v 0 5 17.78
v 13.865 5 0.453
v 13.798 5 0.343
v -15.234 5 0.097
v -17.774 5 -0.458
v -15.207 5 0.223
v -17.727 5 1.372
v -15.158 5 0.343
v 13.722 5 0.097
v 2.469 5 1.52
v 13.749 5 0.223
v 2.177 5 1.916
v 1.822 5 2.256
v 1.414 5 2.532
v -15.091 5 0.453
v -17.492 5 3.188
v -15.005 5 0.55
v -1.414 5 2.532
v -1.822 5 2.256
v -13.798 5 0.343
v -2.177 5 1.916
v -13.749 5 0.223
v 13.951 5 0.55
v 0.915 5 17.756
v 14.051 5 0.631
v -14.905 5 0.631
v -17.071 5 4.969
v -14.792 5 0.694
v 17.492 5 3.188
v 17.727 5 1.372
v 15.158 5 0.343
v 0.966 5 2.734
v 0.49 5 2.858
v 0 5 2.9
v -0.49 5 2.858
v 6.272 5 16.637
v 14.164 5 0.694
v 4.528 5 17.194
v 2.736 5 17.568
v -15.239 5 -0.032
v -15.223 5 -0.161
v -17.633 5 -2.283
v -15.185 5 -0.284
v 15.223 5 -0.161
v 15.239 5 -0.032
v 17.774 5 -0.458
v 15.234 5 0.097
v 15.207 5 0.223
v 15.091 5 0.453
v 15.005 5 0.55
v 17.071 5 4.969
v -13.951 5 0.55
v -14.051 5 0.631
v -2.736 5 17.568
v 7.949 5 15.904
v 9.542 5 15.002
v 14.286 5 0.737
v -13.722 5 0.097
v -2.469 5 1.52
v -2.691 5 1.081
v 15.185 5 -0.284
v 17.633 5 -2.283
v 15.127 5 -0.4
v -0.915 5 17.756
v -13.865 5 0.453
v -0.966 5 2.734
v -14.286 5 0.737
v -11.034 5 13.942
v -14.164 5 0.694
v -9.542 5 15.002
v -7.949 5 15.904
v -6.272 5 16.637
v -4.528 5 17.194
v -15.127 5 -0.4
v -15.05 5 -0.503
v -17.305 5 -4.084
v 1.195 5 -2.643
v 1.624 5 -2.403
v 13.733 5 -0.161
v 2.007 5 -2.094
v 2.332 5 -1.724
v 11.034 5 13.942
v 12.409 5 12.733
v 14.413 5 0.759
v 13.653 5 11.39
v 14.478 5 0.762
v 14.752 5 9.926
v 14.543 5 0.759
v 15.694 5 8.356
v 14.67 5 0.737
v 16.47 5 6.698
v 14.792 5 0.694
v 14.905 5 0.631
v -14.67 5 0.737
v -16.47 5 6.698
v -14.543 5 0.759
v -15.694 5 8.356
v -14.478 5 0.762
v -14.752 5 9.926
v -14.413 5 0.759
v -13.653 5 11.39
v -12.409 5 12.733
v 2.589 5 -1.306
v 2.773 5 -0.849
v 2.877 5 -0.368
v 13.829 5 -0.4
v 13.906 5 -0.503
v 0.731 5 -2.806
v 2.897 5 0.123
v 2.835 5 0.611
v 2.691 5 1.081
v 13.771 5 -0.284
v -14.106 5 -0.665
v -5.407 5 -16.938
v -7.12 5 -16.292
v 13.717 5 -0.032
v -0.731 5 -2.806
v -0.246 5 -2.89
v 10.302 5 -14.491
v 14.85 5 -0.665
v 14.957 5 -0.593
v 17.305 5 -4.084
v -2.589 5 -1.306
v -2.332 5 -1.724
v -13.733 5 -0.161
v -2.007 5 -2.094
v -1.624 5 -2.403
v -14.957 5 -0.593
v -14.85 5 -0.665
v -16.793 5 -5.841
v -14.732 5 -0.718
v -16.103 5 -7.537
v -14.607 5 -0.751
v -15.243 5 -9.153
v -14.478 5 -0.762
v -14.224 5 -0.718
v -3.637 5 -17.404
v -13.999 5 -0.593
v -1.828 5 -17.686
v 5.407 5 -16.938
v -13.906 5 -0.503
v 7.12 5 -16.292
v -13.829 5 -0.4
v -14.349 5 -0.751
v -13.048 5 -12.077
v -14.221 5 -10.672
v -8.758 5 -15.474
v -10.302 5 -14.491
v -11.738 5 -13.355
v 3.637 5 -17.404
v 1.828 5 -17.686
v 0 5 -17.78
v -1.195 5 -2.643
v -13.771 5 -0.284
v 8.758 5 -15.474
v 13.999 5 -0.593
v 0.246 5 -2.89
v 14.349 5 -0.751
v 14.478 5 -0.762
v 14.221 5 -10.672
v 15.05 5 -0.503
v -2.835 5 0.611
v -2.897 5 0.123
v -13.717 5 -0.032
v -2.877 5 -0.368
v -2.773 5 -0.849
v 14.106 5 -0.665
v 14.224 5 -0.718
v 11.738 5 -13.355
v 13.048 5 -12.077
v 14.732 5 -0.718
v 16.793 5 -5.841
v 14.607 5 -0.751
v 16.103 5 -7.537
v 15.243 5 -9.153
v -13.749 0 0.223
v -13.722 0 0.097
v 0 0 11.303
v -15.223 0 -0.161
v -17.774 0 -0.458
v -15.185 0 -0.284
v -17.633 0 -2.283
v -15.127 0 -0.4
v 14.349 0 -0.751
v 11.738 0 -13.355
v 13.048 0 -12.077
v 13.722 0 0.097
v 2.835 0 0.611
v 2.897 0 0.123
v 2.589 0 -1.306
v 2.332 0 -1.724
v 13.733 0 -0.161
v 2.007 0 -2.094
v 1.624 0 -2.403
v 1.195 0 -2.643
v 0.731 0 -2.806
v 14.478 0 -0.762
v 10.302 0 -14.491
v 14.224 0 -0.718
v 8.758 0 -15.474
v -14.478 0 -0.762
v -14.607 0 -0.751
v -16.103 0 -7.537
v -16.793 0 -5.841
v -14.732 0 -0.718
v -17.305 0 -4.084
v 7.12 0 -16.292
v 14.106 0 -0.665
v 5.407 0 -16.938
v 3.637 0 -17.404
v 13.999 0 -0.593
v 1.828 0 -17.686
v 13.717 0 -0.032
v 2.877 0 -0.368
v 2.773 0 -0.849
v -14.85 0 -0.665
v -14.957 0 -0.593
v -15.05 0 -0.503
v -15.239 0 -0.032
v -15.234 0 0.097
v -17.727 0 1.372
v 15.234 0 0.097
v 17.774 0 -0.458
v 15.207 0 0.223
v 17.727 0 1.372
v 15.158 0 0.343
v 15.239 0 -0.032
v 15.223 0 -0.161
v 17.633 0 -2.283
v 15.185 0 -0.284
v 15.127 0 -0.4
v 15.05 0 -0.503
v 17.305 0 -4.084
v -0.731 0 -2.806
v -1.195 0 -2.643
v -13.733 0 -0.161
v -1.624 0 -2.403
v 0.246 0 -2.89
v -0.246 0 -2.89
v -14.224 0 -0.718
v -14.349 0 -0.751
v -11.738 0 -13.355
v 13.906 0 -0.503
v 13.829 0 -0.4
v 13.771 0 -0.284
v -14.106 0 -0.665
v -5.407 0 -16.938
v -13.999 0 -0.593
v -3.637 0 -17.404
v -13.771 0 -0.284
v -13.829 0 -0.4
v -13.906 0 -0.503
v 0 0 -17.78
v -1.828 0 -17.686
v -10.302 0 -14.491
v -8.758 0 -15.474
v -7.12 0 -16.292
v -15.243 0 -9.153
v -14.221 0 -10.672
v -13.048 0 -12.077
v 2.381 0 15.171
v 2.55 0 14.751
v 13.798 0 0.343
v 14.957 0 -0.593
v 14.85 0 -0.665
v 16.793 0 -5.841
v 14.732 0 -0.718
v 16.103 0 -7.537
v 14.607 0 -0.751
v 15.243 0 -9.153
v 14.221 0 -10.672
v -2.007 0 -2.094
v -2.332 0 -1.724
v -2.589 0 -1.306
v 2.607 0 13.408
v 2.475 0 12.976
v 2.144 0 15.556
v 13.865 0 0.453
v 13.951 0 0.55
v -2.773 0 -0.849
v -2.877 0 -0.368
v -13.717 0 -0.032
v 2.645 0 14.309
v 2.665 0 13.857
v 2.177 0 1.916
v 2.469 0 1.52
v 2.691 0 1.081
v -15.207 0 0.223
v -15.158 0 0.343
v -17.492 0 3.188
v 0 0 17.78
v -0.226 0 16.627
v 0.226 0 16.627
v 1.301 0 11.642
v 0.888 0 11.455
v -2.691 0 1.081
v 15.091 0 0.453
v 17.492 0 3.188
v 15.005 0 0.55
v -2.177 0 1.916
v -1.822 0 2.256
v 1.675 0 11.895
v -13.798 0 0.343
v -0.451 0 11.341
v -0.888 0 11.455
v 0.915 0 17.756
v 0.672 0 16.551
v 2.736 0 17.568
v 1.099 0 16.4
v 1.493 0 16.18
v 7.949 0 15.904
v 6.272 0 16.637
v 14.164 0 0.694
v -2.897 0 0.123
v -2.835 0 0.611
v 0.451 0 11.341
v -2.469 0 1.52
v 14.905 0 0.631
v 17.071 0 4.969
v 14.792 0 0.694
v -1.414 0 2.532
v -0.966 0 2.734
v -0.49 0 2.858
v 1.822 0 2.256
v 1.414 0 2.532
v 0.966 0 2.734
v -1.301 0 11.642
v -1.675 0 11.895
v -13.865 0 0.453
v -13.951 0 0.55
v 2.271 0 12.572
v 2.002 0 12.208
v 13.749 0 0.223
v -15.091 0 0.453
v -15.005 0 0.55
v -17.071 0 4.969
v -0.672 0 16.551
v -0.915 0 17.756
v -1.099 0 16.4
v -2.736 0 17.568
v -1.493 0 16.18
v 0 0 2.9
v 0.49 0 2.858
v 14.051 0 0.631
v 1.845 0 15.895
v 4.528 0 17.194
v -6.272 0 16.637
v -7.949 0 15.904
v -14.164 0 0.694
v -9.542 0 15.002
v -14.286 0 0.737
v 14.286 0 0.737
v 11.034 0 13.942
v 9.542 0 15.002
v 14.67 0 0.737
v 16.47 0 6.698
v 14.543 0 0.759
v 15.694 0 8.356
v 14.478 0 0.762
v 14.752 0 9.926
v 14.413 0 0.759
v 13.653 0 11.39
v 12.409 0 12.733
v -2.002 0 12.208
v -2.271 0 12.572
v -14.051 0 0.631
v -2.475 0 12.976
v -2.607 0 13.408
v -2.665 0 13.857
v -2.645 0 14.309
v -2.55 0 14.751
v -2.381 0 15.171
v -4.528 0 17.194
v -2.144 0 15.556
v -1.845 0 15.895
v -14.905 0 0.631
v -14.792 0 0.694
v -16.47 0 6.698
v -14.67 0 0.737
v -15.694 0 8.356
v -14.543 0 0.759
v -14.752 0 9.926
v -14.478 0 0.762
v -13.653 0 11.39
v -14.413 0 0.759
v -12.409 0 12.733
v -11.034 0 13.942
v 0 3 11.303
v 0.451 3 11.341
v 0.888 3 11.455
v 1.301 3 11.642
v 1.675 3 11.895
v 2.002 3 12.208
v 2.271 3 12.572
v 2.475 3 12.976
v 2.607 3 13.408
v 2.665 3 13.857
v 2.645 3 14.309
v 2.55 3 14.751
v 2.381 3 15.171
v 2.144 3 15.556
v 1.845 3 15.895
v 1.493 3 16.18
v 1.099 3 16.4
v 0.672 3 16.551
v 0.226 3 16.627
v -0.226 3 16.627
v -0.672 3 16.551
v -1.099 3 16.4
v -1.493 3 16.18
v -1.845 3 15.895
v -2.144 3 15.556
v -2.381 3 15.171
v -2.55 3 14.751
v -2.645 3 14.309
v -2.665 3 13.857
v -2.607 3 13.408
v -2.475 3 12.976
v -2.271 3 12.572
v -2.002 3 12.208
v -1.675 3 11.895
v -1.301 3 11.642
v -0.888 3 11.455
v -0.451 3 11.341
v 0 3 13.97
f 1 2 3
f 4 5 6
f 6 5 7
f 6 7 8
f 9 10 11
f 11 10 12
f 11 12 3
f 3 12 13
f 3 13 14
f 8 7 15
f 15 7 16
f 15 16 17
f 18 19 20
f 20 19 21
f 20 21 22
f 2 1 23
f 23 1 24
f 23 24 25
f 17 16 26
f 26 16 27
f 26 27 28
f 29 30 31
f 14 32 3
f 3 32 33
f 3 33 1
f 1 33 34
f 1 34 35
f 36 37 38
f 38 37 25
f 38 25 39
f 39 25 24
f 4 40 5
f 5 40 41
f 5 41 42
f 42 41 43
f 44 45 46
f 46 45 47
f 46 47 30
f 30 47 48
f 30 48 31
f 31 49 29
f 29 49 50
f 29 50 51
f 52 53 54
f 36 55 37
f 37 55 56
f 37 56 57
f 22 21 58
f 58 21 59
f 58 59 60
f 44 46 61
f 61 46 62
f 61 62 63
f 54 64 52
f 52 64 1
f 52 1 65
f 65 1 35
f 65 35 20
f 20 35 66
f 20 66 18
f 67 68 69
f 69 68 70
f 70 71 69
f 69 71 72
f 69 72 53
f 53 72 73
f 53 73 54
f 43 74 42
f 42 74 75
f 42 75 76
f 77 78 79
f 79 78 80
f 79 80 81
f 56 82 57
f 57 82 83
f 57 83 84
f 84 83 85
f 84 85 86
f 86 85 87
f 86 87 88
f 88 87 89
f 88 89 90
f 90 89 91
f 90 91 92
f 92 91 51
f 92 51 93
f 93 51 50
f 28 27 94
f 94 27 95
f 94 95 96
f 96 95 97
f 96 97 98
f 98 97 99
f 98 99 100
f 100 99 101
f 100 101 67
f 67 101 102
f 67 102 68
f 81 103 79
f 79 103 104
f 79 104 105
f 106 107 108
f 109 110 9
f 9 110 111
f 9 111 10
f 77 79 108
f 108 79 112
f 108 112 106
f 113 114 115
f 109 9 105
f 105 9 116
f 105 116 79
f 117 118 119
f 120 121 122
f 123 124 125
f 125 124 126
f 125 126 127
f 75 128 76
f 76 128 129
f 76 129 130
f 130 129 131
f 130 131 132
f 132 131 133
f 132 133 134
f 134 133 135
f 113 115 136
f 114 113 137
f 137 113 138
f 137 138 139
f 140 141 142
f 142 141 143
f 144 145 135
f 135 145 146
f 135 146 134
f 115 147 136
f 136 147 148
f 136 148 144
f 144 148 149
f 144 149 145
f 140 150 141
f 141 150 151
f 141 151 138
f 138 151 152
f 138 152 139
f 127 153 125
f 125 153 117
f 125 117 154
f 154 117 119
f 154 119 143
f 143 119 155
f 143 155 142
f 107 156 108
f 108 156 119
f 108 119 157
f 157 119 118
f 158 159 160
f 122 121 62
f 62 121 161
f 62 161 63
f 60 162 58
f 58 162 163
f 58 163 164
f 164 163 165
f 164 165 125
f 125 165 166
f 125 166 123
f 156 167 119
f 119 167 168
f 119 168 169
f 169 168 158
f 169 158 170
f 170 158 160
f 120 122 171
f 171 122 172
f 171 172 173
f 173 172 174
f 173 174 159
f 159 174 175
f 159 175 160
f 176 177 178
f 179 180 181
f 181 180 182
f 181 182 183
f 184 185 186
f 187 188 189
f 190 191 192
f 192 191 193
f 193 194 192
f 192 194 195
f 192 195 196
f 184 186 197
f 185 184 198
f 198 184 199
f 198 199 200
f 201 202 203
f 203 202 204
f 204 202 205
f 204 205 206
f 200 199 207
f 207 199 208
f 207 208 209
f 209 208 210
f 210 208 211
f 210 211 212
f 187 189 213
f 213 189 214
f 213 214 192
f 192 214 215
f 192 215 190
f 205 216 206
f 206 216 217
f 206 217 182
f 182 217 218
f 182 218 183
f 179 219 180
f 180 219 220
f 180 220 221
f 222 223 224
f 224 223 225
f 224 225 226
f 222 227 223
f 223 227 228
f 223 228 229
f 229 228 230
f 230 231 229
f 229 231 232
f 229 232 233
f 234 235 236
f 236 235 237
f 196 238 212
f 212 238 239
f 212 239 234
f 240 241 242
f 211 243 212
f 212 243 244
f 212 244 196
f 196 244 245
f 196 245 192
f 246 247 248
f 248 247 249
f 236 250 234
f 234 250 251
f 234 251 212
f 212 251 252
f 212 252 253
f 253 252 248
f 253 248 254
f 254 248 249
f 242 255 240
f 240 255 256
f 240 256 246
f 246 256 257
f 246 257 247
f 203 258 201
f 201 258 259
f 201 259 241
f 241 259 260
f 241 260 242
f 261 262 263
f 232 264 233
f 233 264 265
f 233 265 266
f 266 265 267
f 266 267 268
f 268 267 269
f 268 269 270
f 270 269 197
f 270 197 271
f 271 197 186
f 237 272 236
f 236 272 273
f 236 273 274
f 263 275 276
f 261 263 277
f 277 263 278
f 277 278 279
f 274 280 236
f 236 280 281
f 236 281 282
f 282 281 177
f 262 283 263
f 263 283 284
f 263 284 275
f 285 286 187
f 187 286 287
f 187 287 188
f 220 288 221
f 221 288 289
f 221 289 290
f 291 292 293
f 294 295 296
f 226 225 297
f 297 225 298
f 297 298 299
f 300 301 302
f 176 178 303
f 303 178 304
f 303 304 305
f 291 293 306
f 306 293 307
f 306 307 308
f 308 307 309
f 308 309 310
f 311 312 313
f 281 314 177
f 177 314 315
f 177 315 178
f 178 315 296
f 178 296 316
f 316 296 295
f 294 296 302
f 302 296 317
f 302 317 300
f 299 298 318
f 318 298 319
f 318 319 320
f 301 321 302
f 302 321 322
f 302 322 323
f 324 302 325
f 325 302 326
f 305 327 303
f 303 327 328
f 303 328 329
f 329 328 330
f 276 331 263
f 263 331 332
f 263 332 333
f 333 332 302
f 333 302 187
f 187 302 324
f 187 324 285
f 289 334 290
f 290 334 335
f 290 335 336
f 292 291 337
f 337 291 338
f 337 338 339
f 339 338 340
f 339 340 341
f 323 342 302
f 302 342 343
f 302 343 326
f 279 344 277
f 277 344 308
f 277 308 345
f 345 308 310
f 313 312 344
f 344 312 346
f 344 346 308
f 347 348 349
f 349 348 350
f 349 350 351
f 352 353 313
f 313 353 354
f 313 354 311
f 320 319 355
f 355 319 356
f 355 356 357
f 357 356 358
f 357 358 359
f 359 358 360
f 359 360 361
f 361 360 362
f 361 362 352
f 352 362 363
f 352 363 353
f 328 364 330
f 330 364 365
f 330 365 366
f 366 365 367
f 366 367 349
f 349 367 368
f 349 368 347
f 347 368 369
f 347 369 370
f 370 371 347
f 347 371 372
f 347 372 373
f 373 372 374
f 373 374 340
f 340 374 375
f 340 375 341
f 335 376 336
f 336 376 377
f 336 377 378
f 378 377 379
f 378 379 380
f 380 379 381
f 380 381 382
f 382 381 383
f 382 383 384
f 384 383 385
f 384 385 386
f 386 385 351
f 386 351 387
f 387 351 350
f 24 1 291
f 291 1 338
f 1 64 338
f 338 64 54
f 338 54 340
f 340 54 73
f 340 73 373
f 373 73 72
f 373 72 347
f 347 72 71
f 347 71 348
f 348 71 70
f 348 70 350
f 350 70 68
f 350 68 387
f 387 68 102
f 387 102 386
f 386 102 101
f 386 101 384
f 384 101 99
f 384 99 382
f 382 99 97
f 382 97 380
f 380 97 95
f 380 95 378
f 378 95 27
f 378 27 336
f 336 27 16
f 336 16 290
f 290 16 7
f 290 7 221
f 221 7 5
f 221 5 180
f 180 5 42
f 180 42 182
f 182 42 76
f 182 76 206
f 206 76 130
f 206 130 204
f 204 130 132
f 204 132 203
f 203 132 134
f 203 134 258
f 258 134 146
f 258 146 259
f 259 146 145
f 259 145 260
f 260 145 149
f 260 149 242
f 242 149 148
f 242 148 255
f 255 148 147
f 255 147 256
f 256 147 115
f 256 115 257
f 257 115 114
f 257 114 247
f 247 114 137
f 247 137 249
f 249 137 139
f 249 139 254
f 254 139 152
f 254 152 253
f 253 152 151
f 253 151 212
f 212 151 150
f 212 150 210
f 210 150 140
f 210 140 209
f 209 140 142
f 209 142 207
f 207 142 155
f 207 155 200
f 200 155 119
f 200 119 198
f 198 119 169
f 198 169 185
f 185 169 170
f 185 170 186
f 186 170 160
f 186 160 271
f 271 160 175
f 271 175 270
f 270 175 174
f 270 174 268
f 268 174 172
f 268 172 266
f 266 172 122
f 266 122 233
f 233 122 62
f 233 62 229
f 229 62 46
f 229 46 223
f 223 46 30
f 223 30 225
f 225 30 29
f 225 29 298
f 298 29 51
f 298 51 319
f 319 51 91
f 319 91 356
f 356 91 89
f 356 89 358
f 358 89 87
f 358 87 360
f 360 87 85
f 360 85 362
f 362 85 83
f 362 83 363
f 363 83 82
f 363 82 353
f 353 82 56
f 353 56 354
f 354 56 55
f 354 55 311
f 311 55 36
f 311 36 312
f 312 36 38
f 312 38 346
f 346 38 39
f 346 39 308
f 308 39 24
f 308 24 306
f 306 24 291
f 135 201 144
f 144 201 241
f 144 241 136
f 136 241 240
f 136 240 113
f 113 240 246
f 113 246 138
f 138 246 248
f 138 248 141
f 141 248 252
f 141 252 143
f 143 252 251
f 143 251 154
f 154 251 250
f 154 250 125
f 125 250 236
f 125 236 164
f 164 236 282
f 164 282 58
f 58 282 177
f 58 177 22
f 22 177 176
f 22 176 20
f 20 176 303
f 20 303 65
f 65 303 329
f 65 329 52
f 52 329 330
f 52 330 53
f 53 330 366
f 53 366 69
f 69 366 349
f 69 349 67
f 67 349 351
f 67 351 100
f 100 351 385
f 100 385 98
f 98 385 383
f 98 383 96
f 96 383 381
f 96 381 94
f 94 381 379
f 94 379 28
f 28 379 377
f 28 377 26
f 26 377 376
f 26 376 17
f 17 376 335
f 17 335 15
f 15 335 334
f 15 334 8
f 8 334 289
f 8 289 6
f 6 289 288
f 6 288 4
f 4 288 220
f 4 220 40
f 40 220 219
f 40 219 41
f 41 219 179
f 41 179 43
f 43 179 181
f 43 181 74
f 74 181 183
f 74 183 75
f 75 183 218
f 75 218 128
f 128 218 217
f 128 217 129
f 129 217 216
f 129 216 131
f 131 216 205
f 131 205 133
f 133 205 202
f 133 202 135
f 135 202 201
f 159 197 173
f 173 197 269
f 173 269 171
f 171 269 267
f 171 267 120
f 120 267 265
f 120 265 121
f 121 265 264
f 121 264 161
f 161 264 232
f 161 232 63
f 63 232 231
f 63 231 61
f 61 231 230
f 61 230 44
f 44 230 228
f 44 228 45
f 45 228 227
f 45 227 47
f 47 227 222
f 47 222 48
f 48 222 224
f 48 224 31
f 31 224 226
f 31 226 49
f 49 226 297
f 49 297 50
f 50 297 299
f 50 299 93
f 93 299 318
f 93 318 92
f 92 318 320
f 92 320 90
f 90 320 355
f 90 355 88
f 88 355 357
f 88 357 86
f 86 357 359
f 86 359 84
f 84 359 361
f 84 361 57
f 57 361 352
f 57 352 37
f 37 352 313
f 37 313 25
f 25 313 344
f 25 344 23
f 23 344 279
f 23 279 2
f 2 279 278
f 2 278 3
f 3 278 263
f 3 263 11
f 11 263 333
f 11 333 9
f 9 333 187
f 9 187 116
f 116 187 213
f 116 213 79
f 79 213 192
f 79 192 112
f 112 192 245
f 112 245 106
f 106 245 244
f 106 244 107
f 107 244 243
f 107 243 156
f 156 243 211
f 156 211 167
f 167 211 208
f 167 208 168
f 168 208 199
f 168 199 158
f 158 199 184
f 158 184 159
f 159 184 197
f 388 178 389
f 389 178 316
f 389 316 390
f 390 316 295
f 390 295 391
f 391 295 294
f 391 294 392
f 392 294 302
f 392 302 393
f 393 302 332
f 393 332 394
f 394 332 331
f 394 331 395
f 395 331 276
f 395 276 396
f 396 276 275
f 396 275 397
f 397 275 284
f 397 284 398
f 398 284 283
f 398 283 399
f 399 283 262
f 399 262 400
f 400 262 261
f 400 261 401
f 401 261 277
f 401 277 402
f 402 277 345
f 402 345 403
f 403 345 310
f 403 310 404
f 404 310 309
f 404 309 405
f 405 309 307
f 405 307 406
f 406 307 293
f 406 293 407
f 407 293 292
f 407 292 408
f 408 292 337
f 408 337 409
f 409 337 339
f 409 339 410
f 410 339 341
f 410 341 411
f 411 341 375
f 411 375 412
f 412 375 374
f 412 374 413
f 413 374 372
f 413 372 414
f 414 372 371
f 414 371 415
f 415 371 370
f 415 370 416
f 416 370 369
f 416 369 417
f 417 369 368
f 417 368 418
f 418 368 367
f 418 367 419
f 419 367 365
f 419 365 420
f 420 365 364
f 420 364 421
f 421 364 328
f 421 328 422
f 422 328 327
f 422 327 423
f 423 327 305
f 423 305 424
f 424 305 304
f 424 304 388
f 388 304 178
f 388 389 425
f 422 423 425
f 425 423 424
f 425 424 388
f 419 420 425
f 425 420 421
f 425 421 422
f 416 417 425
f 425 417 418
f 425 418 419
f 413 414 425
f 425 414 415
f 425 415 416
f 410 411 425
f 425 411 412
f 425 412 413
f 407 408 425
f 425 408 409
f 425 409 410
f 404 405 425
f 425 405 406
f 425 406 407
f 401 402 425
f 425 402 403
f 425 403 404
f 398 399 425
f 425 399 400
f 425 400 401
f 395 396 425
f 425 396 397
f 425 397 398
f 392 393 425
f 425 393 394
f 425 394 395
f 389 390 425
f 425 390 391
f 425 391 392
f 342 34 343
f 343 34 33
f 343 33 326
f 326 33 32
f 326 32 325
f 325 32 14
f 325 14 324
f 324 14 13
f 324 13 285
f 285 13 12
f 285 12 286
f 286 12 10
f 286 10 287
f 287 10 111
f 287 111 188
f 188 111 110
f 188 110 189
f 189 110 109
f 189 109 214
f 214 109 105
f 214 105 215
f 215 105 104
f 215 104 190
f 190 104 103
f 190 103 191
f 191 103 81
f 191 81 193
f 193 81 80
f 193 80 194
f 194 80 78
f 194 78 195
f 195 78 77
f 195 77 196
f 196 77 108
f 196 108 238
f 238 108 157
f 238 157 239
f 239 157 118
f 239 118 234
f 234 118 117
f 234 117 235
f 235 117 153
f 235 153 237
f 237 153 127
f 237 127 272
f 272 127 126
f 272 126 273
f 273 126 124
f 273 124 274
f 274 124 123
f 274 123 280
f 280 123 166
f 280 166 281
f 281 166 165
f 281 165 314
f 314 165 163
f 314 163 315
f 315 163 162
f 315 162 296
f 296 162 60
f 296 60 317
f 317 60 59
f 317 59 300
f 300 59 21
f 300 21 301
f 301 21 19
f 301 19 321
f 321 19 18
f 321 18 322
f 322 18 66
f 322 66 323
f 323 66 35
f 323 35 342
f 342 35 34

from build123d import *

# Parameters (mm, degrees)
SKETCH1_R            = 17.78
SKETCH1_R_2          = 0.762
BOSS_EXTRUDE1_DEPTH  = 5
SKETCH5_R            = 2.667
CUT_EXTRUDE1_DEPTH   = 3
M5_CLEARANCE_HOLE2_D = 5.8


with BuildPart() as part:
    # Sketch1 → Boss-Extrude1 (new body)
    with BuildSketch(Plane(origin=(0, 0, 0), x_dir=(1, 0, 0), z_dir=(0, 1, 0))):
        with Locations(Location((0, 0, 0), (0, 0, 270))):
            Circle(SKETCH1_R)
        with Locations(Location((-14.478, 0, 0), (0, 0, 270))):
            Circle(SKETCH1_R_2, mode=Mode.SUBTRACT)
        with Locations(Location((14.478, 0, 0), (0, 0, 270))):
            Circle(SKETCH1_R_2, mode=Mode.SUBTRACT)
    extrude(amount=BOSS_EXTRUDE1_DEPTH)

    # Sketch5 → Cut-Extrude1 (cut)
    with BuildSketch(Plane.XZ):
        with Locations(Location((0, 13.97, 0), (0, 0, 270))):
            Circle(SKETCH5_R)
    extrude(amount=-CUT_EXTRUDE1_DEPTH, mode=Mode.SUBTRACT)

    # M5 Clearance Hole2 (through all)
    with Locations(Plane(origin=(0, 5, 0), x_dir=(1, 0, 0), z_dir=(0, 1, 0))):
        with Locations((0, 0)):
            Hole(M5_CLEARANCE_HOLE2_D / 2)


solid = part.part
